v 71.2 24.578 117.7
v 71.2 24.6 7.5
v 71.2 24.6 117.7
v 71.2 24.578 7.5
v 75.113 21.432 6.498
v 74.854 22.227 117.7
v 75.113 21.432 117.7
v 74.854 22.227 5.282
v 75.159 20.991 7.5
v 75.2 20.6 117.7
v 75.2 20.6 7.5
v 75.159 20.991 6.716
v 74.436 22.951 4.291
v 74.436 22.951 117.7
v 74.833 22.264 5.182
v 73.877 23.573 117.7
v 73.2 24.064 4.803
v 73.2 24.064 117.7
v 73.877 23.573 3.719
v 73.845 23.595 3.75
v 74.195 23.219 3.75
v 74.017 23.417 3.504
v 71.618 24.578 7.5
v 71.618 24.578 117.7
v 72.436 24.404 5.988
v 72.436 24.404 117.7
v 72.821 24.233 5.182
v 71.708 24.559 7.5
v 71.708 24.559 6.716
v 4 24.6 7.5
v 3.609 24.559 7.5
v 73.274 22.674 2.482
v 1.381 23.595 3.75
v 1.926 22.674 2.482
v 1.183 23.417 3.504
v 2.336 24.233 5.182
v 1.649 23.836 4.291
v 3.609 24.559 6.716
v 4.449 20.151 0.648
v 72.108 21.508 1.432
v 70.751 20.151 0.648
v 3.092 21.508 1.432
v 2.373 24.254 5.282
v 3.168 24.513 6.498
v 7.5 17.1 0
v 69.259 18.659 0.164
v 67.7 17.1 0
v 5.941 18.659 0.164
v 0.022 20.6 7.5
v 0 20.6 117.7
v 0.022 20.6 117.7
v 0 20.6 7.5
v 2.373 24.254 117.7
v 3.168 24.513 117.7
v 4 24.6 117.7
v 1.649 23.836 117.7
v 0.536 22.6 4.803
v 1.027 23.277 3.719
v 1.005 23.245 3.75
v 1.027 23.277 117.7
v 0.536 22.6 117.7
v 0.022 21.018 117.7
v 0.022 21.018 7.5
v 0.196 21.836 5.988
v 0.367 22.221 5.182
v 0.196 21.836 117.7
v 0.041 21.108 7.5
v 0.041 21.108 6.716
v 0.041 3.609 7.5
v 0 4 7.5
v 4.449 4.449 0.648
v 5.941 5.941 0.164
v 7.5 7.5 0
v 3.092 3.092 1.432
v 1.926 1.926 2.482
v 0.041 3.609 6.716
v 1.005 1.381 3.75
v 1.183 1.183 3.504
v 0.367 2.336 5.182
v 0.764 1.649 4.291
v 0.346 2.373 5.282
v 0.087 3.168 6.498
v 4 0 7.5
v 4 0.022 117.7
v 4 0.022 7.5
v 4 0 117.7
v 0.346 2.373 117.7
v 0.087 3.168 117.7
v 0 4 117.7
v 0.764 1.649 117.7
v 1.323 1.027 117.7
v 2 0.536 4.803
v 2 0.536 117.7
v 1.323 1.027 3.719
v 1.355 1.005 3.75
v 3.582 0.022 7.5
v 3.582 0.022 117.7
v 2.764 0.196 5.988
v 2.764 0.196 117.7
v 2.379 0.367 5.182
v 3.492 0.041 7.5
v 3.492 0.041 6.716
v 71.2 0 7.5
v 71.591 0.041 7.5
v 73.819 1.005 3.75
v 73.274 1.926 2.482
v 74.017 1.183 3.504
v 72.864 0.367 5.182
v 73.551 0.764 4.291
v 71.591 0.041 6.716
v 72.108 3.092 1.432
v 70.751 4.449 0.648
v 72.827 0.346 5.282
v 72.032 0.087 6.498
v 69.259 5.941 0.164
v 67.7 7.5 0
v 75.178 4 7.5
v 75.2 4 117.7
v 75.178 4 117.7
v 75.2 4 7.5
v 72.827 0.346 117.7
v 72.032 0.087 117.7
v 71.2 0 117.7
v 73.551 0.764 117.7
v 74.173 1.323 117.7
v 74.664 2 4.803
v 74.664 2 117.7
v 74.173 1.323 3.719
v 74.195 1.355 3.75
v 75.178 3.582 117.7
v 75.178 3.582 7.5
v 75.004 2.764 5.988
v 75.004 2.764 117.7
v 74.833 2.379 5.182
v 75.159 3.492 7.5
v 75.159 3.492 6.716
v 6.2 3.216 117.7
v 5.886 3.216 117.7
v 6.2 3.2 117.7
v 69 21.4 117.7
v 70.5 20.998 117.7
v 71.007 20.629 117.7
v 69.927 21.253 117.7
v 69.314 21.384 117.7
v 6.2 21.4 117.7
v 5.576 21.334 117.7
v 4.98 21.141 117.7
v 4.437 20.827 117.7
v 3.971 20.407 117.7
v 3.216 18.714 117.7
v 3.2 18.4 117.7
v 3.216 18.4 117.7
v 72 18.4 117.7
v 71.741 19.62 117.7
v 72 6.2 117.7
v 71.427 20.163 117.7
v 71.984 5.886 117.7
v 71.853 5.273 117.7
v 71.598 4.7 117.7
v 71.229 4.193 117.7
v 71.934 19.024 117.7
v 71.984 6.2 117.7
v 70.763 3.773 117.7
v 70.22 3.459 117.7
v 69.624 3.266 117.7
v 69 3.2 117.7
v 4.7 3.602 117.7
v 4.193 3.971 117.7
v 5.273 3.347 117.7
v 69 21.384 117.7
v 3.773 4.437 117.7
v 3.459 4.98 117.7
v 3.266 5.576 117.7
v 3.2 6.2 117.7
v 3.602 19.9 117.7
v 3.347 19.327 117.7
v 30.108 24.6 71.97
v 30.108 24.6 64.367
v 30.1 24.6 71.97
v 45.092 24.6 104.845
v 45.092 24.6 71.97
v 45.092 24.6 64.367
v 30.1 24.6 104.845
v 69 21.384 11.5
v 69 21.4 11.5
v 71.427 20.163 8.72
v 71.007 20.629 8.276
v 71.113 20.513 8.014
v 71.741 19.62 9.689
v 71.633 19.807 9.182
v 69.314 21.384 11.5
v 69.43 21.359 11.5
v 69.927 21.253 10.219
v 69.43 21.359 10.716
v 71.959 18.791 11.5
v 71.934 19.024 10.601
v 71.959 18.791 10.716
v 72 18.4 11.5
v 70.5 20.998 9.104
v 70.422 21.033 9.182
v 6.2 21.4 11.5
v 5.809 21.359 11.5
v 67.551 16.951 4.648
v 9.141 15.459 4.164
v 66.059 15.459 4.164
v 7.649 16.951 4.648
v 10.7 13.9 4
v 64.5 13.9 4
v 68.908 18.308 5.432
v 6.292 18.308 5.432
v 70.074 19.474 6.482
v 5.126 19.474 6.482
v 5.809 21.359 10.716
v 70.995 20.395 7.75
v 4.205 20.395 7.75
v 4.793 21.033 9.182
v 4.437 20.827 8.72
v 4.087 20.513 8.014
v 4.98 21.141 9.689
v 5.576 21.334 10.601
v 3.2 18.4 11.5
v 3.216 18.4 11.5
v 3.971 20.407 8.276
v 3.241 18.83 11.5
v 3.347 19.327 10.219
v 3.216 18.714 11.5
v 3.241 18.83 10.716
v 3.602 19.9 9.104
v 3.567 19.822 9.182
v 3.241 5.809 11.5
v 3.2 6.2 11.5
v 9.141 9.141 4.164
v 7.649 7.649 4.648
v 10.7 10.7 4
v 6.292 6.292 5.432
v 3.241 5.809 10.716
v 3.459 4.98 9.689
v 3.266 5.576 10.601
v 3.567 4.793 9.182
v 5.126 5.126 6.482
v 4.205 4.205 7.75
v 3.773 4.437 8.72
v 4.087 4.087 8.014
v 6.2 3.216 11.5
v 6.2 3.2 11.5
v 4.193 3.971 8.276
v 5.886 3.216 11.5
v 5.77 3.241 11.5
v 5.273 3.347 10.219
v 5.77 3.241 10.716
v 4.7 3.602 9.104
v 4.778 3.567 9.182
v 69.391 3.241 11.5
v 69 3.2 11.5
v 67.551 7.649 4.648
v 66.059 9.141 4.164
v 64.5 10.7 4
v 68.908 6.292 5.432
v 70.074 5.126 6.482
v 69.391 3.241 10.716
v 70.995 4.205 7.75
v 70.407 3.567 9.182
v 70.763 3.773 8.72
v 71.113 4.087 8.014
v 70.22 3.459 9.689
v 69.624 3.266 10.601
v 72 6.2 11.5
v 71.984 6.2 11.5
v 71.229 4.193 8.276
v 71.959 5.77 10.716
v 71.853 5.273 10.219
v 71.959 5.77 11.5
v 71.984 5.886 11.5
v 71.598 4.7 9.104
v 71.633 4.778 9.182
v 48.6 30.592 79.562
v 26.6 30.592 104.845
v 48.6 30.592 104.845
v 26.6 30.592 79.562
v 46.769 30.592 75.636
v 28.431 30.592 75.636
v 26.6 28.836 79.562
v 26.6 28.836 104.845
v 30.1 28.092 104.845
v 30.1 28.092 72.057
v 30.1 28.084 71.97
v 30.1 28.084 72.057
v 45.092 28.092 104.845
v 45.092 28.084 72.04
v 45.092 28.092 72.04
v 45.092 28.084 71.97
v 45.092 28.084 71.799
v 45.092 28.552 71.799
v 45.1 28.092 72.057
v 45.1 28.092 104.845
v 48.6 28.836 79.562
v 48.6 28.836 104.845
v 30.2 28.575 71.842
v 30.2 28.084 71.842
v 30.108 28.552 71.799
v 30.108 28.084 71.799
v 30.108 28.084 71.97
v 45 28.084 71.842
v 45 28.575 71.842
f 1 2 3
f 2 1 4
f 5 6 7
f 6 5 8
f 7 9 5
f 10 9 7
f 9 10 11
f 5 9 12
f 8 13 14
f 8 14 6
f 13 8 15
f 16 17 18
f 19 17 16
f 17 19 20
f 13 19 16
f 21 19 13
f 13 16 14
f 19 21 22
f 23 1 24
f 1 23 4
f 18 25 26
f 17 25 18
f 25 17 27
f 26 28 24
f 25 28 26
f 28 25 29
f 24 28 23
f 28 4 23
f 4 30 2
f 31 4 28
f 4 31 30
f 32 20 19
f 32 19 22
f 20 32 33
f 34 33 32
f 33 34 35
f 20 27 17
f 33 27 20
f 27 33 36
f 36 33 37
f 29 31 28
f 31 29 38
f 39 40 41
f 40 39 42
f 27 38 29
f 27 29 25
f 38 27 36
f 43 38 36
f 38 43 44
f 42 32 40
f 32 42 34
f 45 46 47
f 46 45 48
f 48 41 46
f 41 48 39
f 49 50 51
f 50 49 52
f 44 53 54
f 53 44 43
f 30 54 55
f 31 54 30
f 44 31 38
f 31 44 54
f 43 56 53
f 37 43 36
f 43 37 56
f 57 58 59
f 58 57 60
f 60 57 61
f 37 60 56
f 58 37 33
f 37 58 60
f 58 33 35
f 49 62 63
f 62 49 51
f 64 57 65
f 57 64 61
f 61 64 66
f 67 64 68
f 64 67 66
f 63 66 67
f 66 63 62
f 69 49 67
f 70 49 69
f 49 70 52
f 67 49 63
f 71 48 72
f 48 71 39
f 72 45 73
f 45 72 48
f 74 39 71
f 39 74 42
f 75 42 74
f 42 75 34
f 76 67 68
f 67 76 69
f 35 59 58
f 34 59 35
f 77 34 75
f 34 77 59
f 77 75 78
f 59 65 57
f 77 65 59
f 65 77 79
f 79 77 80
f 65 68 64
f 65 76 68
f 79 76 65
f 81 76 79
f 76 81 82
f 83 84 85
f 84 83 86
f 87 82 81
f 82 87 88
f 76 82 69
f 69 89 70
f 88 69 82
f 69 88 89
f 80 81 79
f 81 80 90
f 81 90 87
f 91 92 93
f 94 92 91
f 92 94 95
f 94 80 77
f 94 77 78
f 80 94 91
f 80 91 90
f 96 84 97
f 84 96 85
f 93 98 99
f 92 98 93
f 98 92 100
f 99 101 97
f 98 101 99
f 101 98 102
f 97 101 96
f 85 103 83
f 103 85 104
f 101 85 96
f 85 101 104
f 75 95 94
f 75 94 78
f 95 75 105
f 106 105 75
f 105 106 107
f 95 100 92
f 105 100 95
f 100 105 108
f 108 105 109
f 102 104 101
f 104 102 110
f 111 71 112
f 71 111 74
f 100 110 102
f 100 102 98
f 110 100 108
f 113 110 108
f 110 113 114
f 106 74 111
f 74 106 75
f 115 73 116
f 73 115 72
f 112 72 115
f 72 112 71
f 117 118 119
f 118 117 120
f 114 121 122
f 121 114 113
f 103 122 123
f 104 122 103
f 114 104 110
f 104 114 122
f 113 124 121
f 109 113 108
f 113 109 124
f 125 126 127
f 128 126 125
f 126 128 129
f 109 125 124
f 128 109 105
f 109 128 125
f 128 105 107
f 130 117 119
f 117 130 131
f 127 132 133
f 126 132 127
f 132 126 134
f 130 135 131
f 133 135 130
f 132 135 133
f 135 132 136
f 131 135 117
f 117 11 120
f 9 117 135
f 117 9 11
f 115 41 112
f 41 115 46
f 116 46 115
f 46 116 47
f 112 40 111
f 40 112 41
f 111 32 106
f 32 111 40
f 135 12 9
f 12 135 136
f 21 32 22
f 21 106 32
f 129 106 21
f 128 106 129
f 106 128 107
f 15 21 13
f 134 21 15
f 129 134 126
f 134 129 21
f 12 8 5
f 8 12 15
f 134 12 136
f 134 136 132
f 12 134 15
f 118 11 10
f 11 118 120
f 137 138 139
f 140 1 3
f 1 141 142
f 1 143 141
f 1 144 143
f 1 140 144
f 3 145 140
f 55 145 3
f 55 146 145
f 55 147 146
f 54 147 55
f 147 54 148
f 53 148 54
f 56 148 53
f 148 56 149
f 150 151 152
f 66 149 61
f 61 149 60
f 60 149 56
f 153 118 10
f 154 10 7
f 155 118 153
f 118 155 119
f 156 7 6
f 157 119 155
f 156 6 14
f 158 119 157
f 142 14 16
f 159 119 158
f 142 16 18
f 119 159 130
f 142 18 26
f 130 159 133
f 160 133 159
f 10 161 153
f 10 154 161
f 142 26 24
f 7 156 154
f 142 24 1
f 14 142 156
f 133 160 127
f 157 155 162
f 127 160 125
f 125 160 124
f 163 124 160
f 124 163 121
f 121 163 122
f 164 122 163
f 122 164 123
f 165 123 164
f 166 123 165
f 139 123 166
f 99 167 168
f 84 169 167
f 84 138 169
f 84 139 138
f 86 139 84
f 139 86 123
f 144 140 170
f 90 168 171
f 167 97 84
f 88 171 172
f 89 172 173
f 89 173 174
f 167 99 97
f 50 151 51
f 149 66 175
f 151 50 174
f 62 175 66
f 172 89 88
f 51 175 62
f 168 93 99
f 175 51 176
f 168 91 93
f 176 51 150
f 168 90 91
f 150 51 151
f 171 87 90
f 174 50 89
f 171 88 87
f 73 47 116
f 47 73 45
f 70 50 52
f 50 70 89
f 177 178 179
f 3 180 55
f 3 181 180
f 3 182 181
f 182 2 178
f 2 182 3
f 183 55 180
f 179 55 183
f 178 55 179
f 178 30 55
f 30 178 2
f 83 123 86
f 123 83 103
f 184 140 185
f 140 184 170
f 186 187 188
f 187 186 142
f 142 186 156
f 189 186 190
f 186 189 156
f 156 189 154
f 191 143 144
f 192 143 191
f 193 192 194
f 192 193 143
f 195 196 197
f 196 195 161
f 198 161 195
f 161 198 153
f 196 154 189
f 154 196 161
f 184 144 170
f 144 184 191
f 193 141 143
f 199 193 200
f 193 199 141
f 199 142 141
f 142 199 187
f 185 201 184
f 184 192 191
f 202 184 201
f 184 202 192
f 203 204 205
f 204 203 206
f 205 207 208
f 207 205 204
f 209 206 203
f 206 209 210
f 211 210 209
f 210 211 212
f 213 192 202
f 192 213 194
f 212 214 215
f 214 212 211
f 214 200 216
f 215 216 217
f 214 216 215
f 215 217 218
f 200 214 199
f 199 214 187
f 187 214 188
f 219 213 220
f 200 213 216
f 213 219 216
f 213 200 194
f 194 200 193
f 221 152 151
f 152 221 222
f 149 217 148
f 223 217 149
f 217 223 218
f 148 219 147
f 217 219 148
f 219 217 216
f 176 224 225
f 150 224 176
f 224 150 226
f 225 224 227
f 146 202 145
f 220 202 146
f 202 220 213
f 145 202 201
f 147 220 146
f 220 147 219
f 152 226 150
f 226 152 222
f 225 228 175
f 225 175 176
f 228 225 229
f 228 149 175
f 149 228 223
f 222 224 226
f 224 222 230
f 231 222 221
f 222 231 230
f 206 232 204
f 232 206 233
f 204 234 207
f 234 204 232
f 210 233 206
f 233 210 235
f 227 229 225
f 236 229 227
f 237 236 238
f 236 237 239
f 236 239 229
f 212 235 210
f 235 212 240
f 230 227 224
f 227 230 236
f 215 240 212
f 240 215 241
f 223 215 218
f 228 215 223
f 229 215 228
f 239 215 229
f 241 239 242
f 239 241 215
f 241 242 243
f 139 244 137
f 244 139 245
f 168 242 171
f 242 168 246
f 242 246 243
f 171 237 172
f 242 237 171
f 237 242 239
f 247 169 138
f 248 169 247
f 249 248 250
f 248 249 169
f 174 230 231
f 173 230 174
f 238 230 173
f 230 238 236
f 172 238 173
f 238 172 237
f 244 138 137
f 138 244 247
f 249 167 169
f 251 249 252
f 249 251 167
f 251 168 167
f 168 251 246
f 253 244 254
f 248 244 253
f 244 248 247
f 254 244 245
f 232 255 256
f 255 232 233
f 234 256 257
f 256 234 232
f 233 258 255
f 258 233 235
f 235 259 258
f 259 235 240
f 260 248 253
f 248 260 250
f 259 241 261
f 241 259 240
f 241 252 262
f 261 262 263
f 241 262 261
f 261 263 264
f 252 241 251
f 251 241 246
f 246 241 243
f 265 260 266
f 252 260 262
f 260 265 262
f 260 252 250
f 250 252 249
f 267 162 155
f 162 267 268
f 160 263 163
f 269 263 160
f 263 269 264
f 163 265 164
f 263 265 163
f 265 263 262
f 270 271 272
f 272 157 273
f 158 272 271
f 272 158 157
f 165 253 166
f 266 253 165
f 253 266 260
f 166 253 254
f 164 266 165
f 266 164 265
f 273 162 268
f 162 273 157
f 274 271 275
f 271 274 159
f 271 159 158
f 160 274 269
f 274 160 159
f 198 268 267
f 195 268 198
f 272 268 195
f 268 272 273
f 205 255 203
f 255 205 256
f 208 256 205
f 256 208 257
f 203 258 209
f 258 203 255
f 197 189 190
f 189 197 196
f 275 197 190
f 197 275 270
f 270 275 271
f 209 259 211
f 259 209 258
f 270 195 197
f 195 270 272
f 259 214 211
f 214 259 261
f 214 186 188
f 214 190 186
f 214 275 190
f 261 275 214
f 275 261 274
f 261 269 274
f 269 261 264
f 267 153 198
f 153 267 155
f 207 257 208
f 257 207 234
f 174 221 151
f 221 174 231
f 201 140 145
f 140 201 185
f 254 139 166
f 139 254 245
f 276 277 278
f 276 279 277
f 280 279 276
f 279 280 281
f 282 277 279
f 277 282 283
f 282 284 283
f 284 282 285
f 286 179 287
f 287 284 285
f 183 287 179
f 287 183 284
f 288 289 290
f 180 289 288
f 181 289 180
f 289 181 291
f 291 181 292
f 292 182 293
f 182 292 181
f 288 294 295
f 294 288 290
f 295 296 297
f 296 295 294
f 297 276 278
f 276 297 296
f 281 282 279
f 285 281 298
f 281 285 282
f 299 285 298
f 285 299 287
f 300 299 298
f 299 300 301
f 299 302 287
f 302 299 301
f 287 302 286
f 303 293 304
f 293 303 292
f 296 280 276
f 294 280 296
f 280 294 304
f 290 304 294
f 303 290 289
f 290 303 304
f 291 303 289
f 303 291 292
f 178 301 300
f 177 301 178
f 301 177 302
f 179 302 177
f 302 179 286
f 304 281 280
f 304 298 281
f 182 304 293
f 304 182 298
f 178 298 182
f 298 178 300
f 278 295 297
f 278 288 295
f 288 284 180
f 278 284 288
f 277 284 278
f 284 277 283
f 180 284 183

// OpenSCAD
// file: libraries/local-misc/fillet.scad
module nut(d,h,horizontal=true){
    cornerdiameter =  (d / 2) / cos (180 / 6);
    cylinder(h = h, r = cornerdiameter, $fn = 6);
    if(horizontal){
        for(i = [1:6]){
            rotate([0,0,60*i]) translate([-cornerdiameter-0.2,0,0]) rotate([0,0,-45]) cube([2,2,h]);
        }
    }
}

module fillet(radius, height=100, $fn=$fn) {
  if (radius > 0) {
    //this creates acutal fillet
    translate([-radius, -radius, -height / 2 - 0.02]) difference() {
        cube([radius * 2, radius * 2, height + 0.04]);
        if ($fn == 0 && (radius == 2 || radius == 3 || radius == 4)) {
            cylinder(r=radius, h=height + 0.04, $fn=4 * radius);
        } else {
            cylinder(r=radius, h=height + 0.04, $fn=$fn);
        }

    }
  }
}

module cube_fillet(size, radius=-1, vertical=[0,0,0,0], top=[0,0,0,0], bottom=[0,0,0,0], center=false, $fn=4){
    if (center) {
        cube_fillet_inside(size, radius, vertical, top, bottom, $fn);
    } else {
        translate([size[0]/2, size[1]/2, size[2]/2])
            cube_fillet_inside(size, radius, vertical, top, bottom, $fn);
    }
}

module cube_negative_fillet(size, radius=-1, vertical=[3,3,3,3], top=[0,0,0,0], bottom=[0,0,0,0], $fn=$fn){
    j=[1,0,1,0];

    for (i=[0:3]) {
        if (radius > -1) {
            rotate([0, 0, 90*i]) translate([size[1-j[i]]/2, size[j[i]]/2, 0]) fillet(radius, size[2], $fn);
        } else {
            rotate([0, 0, 90*i]) translate([size[1-j[i]]/2, size[j[i]]/2, 0]) fillet(vertical[i], size[2], $fn);
        }
        rotate([90*i, -90, 0]) translate([size[2]/2, size[j[i]]/2, 0 ]) fillet(top[i], size[1-j[i]], $fn);
        rotate([90*(4-i), 90, 0]) translate([size[2]/2, size[j[i]]/2, 0]) fillet(bottom[i], size[1-j[i]], $fn);

    }
}

module cube_fillet_inside(size, radius=-1, vertical=[3,3,3,3], top=[0,0,0,0], bottom=[0,0,0,0], $fn=$fn){
    //makes CENTERED cube with round corners
    // if you give it radius, it will fillet vertical corners.
    //othervise use vertical, top, bottom arrays
    //when viewed from top, it starts in upper right corner (+x,+y quadrant) , goes counterclockwise
    //top/bottom fillet starts in direction of Y axis and goes CCW too

    if (radius == 0) {
        cube(size, center=true);
    } else {
        difference() {
            cube(size, center=true);
            cube_negative_fillet(size, radius, vertical, top, bottom, $fn);
        }
    }
}

//cube_fillet([10,10,10]);
// file: ../libraries/local-misc/fillet.scad
module nut(d,h,horizontal=true){
    cornerdiameter =  (d / 2) / cos (180 / 6);
    cylinder(h = h, r = cornerdiameter, $fn = 6);
    if(horizontal){
        for(i = [1:6]){
            rotate([0,0,60*i]) translate([-cornerdiameter-0.2,0,0]) rotate([0,0,-45]) cube([2,2,h]);
        }
    }
}

module fillet(radius, height=100, $fn=$fn) {
  if (radius > 0) {
    //this creates acutal fillet
    translate([-radius, -radius, -height / 2 - 0.02]) difference() {
        cube([radius * 2, radius * 2, height + 0.04]);
        if ($fn == 0 && (radius == 2 || radius == 3 || radius == 4)) {
            cylinder(r=radius, h=height + 0.04, $fn=4 * radius);
        } else {
            cylinder(r=radius, h=height + 0.04, $fn=$fn);
        }

    }
  }
}

module cube_fillet(size, radius=-1, vertical=[0,0,0,0], top=[0,0,0,0], bottom=[0,0,0,0], center=false, $fn=4){
    if (center) {
        cube_fillet_inside(size, radius, vertical, top, bottom, $fn);
    } else {
        translate([size[0]/2, size[1]/2, size[2]/2])
            cube_fillet_inside(size, radius, vertical, top, bottom, $fn);
    }
}

module cube_negative_fillet(size, radius=-1, vertical=[3,3,3,3], top=[0,0,0,0], bottom=[0,0,0,0], $fn=$fn){
    j=[1,0,1,0];

    for (i=[0:3]) {
        if (radius > -1) {
            rotate([0, 0, 90*i]) translate([size[1-j[i]]/2, size[j[i]]/2, 0]) fillet(radius, size[2], $fn);
        } else {
            rotate([0, 0, 90*i]) translate([size[1-j[i]]/2, size[j[i]]/2, 0]) fillet(vertical[i], size[2], $fn);
        }
        rotate([90*i, -90, 0]) translate([size[2]/2, size[j[i]]/2, 0 ]) fillet(top[i], size[1-j[i]], $fn);
        rotate([90*(4-i), 90, 0]) translate([size[2]/2, size[j[i]]/2, 0]) fillet(bottom[i], size[1-j[i]], $fn);

    }
}

module cube_fillet_inside(size, radius=-1, vertical=[3,3,3,3], top=[0,0,0,0], bottom=[0,0,0,0], $fn=$fn){
    //makes CENTERED cube with round corners
    // if you give it radius, it will fillet vertical corners.
    //othervise use vertical, top, bottom arrays
    //when viewed from top, it starts in upper right corner (+x,+y quadrant) , goes counterclockwise
    //top/bottom fillet starts in direction of Y axis and goes CCW too

    if (radius == 0) {
        cube(size, center=true);
    } else {
        difference() {
            cube(size, center=true);
            cube_negative_fillet(size, radius, vertical, top, bottom, $fn);
        }
    }
}

//cube_fillet([10,10,10]);
// file: ../libraries/MCAD/2Dshapes.scad
/*
 *  OpenSCAD 2D Shapes Library (www.openscad.org)
 *  Copyright (C) 2012 Peter Uithoven
 *
 *  License: LGPL 2.1 or later

 *  2D Shapes
 *  ngon(sides, radius, center=false);
 *  complexRoundSquare(size,rads1=[0,0], rads2=[0,0], rads3=[0,0], rads4=[0,0], center=true)
 *  roundedSquare(pos=[10,10],r=2)
 *  ellipsePart(width,height,numQuarters)
 *  donutSlice(innerSize,outerSize, start_angle, end_angle)
 *  pieSlice(size, start_angle, end_angle) //size in radius(es)
 *  ellipse(width, height) {
*/

// Examples - (layouts.scad is required for examples)
// example2DShapes(); use <layouts.scad>;

module example2DShapes() {
    grid(105,105,true,4)
    {
        // ellipse
        ellipse(50,75);

        // part of ellipse (a number of quarters)
        ellipsePart(50,75,3);
        ellipsePart(50,75,2);
        ellipsePart(50,75,1);

        // complexRoundSquare examples
        complexRoundSquare([75,100],[20,10],[20,10],[20,10],[20,10]);
        complexRoundSquare([75,100],[0,0],[0,0],[30,50],[20,10]);
        complexRoundSquare([50,50],[10,20],[10,20],[10,20],[10,20],false);
        complexRoundSquare([100,100]);
        complexRoundSquare([100,100],rads1=[20,20],rads3=[20,20]);

        // pie slice
        pieSlice(50,0,10);
        pieSlice(50,45,190);
        pieSlice([50,20],180,270);

        // donut slice
        donutSlice(20,50,0,350);
        donutSlice(30,50,190,270);
        donutSlice([40,22],[50,30],180,270);
        donutSlice([50,20],50,180,270);
        donutSlice([20,30],[50,40],0,270);
    }
}
// end examples ----------------------

module complexRoundSquare(
    size, // Size
    rads1=[0,0], // Top left radius
    rads2=[0,0], // Top right radius
    rads3=[0,0], // Bottom right radius
    rads4=[0,0], // Bottom left radius
    center=true // center
) {
    width = size[0];
    height = size[1];
    // %square(size=[width, height],center=true);
    x1 = 0-width/2+rads1[0];
    y1 = 0-height/2+rads1[1];
    x2 = width/2-rads2[0];
    y2 = 0-height/2+rads2[1];
    x3 = width/2-rads3[0];
    y3 = height/2-rads3[1];
    x4 = 0-width/2+rads4[0];
    y4 = height/2-rads4[1];

    scs = 0.1; // straight corner size

    x = (center)? 0: width/2;
    y = (center)? 0: height/2;

    translate([x,y,0])
    hull()
    {
        // top left
        if(rads1[0] > 0 && rads1[1] > 0)
            translate([x1,y1])
            mirror([1,0])
            ellipsePart(rads1[0]*2,rads1[1]*2,1);
        else
            translate([x1,y1])
            square(size=[scs, scs]);

        // top right
        if(rads2[0] > 0 && rads2[1] > 0)
            translate([x2,y2])
            ellipsePart(rads2[0]*2,rads2[1]*2,1);
        else
            translate([width/2-scs,0-height/2])
            square(size=[scs, scs]);

        // bottom right
        if(rads3[0] > 0 && rads3[1] > 0)
            translate([x3,y3])
            mirror([0,1])
            ellipsePart(rads3[0]*2,rads3[1]*2,1);
        else
            translate([width/2-scs,height/2-scs])
            square(size=[scs, scs]);

        // bottom left
        if(rads4[0] > 0 && rads4[1] > 0)
            translate([x4,y4])
            rotate([0,0,-180])
            ellipsePart(rads4[0]*2,rads4[1]*2,1);
        else
            #translate([x4,height/2-scs])
            square(size=[scs, scs]);
    }
}

module roundedSquare(pos=[10,10],r=2) {
    minkowski()
    {
        square([pos[0]-r*2,pos[1]-r*2],center=true);


        circle(r=r);
    }
}

// round shapes
// The orientation might change with the implementation of circle...
module ngon(sides, radius, center=false) {
    rotate([0, 0, 360/sides/2])
    circle(r=radius, $fn=sides, center=center);
}

module ellipsePart(width,height,numQuarters) {
    o = 1; //slight overlap to fix a bug
    difference()
    {
        ellipse(width,height);

        if(numQuarters <= 3)
            translate([0-width/2-o,0-height/2-o,0])
            square([width/2+o,height/2+o]);
        if(numQuarters <= 2)
            translate([0-width/2-o,-o,0])
            square([width/2+o,height/2+o*2]);
        if(numQuarters < 2)
            translate([-o,0,0])
            square([width/2+o*2,height/2+o]);
    }
}

module donutSlice(innerSize,outerSize, start_angle, end_angle) {
    difference()
    {
        pieSlice(outerSize, start_angle, end_angle);

        if(is_list(innerSize) && len(innerSize) > 1)
             ellipse(innerSize[0]*2,innerSize[1]*2);
        else
            circle(innerSize);
    }
}

module pieSlice(size, start_angle, end_angle) { //size in radius(es)
    rx = (is_list(size) && len(size) > 1)? size[0] : size;
    ry = (is_list(size) && len(size) > 1)? size[1] : size;
    trx = rx* sqrt(2) + 1;
    try = ry* sqrt(2) + 1;
    a0 = (4 * start_angle + 0 * end_angle) / 4;
    a1 = (3 * start_angle + 1 * end_angle) / 4;
    a2 = (2 * start_angle + 2 * end_angle) / 4;
    a3 = (1 * start_angle + 3 * end_angle) / 4;
    a4 = (0 * start_angle + 4 * end_angle) / 4;

    if(end_angle > start_angle)
        intersection() {
        if(is_list(size) && len(size) > 1)
            ellipse(rx*2,ry*2);
        else
            circle(rx);
        polygon([
            [0,0],
            [trx * cos(a0), try * sin(a0)],
            [trx * cos(a1), try * sin(a1)],
            [trx * cos(a2), try * sin(a2)],
            [trx * cos(a3), try * sin(a3)],
            [trx * cos(a4), try * sin(a4)],
            [0,0]
        ]);
    }
}

module ellipse(width, height) {
    scale([1, height/width, 1])
    circle(r=width/2);
}
// file: mockup/powerbank_dummy.scad
///////////////////////////////////////////////////////////////////////////////
// Initial Revision:
//   2023-Oct-14
//
// Author:
//
//   David Crook <idcrook@users.noreply.github.com>
//
// Inspired by:
//
// Description:
//
//
//
// Revisions/Notes:
//
//   2023-Oct-14: Initial dimensions
//
//
///////////////////////////////////////////////////////////////////////////////

// use_fillets = 1;

use <MCAD/2Dshapes.scad>
include <MCAD/units.scad>
include <../libraries/local-misc/fillet.scad>

e = 1/128; // small number

// determines whether model is instantiated by this file; set to false for
// using as an include file
DEVELOPING_powerbank_dummy = false;

// [Amazon.com: LOVELEDI Portable-Charger-Power-Bank - 2 Pack 15000mAh Dual USB Power Bank Output 5V3.1A Fast Charging Portable Charger Compatible with Smartphones and All USB Devices ](https://www.amazon.com/gp/product/B0B45GX5V7?ie=UTF8&th=1)

// - Capacity: 15000mAh
// - Input(Type-C): 5V/3A(max)
// - Input(Micro):  5V/2A
// - Output(USB-A1): 5V/3.1A
// - Output(USB-A2): 5V/3.1A
// - Size:  5.5 \* 2.5 \* 0.5 in
// - Weight: 203g / 7.1oz
// - Recharge Cycle: >800+times


powerbank__thickness = 17.0 * mm;
powerbank__length = 67.6 * mm;
powerbank__width = powerbank__length;
powerbank__height = 5.50 * inch;

// all measurements in millimeters
button__center_from_top = 15.0;
button__height = 11.0;
button__thickness = 7.0;
button__extension = 0.1;

led__midline_from_top = 15.0;
led__span = 11.0;
led__number_of = 4;
led__extension = 0.1;
led__radius = 0.5;
// usba_l__center_from_left = 10.0;

// band_thickness = 8.0;
face_corner_radius = 12.5;
side_corner_radius1 = 5.0;

/// creates for() range to give desired no of steps to cover range
function steps( start, no_steps, end) = [start:(end-start)/(no_steps-1):end];


module button (height = button__height,
               width = button__thickness,
               thickness = button__extension) {

    linear_extrude(height = thickness, center = false) {
      square(size = [width, height] , center = true);
    }
}



module powerbank_dummy(width = powerbank__width,
                       height = powerbank__height,
                       thickness = powerbank__thickness) {

  gross_size = [width, thickness, height];

  r = side_corner_radius1;
  face_r = face_corner_radius;

  vertical=[r,r,r,r];
  top=[face_r,face_r,face_r,face_r];
  bottom=[face_r,face_r,face_r,face_r];

  // TODO: Add ports/connectors locations?

  cube_fillet(size = gross_size,
    vertical=vertical, top=top, bottom=bottom,
    center = false, $fn = 30);

  // BUTTON
  btn_x = 0.0;
  btn_y = (1/2) * powerbank__thickness;
  btn_z = powerbank__height - button__center_from_top;

  translate([btn_x, btn_y, btn_z])
    rotate ([0,-90,0])
    color("LimeGreen")
    linear_extrude(height = button__extension, center=true)
    square([button__height, button__thickness], center = true);

  // LEDs
  led_x = (1/2) * powerbank__length - (1/2) * led__span;
  led_y = 0.0;
  led_z = powerbank__height - led__midline_from_top;

  color("Blue")
    translate([led_x, led_y, led_z])
    rotate([90, 0, 0])
    {
      for (i=steps(0.0, led__number_of, led__span)) {
        translate([i, 0, 0])
          linear_extrude(height = led__extension)
          square(led__radius);
      }
    }

}

// $preview requires version 2019.05
$fn = $preview ? 30 : 100;

if (DEVELOPING_powerbank_dummy && false) {
  // sizing up mount size
}

if (DEVELOPING_powerbank_dummy) {
  powerbank_dummy();
}
// main file
///////////////////////////////////////////////////////////////////////////////
// Initial Revision:
//   2023-Oct-14
//
// Author:
//
//   David Crook <idcrook@users.noreply.github.com>
//
// Inspired by: MY Iphone bike sleeve holders
//
// Description:
//
//
//
// Revisions/Notes:
//
//   2023-Oct-15: starting
//

//
///////////////////////////////////////////////////////////////////////////////

include <mockup/powerbank_dummy.scad>
use <../libraries/MCAD/2Dshapes.scad>
include <../libraries/local-misc/fillet.scad>

e = 1/128; // small number

// $preview requires version 2019.05
$fn = $preview ? 30 : 100;

RENDER_FOR_PRINT = true;
wall_thickness = 3.2;
wall_gap = 0.6;
base_thickness = 4.0;

module __Customizer_Limit__ () {}

// capture variables from included model
shell_thickness = powerbank__thickness ;
shell_width = powerbank__length;
shell_height = powerbank__height;

sleeve_top_cutoff = button__center_from_top + (1/2)*button__height + 5.5;

sleeve_outer_thicknees = shell_thickness + 2*wall_gap + 2*wall_thickness;
sleeve_outer_width = shell_width + 2*wall_gap + 2*wall_thickness;
sleeve_outer_height = shell_height + 1*base_thickness;

sides_radius = side_corner_radius1 - 1.0;
bottom_corder_radius = 0.60 * face_corner_radius;

module sleeveMountInsert (width, thickness, height, shouldTweak) {

  insertTailWidth = width;
  insertThickness = 2*thickness;
  insertChopThickness = thickness;
  insertFullHeight = height;

  insertPartialHeight = 25.0 ;
  insertSlantedHeight = insertFullHeight - insertPartialHeight;
  insertSlantAngle = 62;
  insertSlantAngle2 = 65;

  tolerance = 0.5;

  insertChopThickness_x = shouldTweak ? insertChopThickness + tolerance : insertChopThickness;
  insertChopThickness_y = shouldTweak ? insertChopThickness + tolerance : insertChopThickness;
  r1 = shouldTweak ? 0 : 0;
  // empirically determined value when shouldTweak == false
  start_of_leading_edge = (1/2) * insertSlantedHeight * sin (insertSlantAngle);
  z_cover_leading_edge = start_of_leading_edge + 0.12 ;
  y_rot2_leading_edge = - 180 + insertSlantAngle2;

  rotateAngle = 12;

  echo("insertChopThickness_x:", insertChopThickness_x);
  echo("insertChopThickness_y:", insertChopThickness_y);

  difference() {
    linear_extrude(height = insertFullHeight, center = false, convexity = 10)
      difference() {
      complexRoundSquare([insertTailWidth, insertThickness],
                         [0,0], [0,0], [0,0], [0,0],
                         center = false);

      // vertical side nearest attach surface
      translate([-e, -e, 0])
        complexRoundSquare([insertChopThickness_x + e, insertChopThickness_y + e],
                           [0,0], [0,0], [r1,r1], [0,0],
                           center = false);

      // other vertical side nearest attach surface
      translate([insertTailWidth - insertChopThickness_x - e, -e, 0])
        complexRoundSquare([insertChopThickness_x + e, insertChopThickness_y + e],
                           [0,0], [0,0], [0,0], [r1,r1],
                           center = false);

      // this carves a small slant on the side rails
      if (shouldTweak) {
        translate([insertChopThickness_x, insertChopThickness_y, 0])
          rotate([0,0,180-rotateAngle])
          complexRoundSquare([insertChopThickness_x+2, insertChopThickness_y/2],
                             [0,0], [0,0], [0,0], [0,0],
                             center = false);
        translate([insertTailWidth - insertChopThickness_x, 0, 0])
          translate([0, insertChopThickness_y,0])
          rotate([0,0,270+rotateAngle])
          complexRoundSquare([insertChopThickness_x/2, insertChopThickness_y+2],
                             [0,0], [0,0], [0,0], [0,0],
                             center = false);
      }
    }
    // leading edges of upper wings of slot
    translate([insertChopThickness_x + 0*e + 0.1,
               insertChopThickness_y - 1*e ,
               start_of_leading_edge - 1*e - 0.0])
      rotate([0, y_rot2_leading_edge, 0])
      cube(10 + 2);
    translate([insertTailWidth - insertChopThickness_x - 0*e - 0.1,
               insertChopThickness_y - 1*e ,
               start_of_leading_edge - 1*e - 0.0])
      rotate([0, 90 - insertSlantAngle2 ,0])
      cube(10 + 2);
    translate([-e, -e, 0])
      mirror([0,0,0])
      rotate([0,0,0])
      cube([insertChopThickness_x + 2*e,insertChopThickness_y+2, z_cover_leading_edge]);
    translate([insertTailWidth + e, -e , 0])
      mirror([1,0,0])
      rotate([0,0,0])
      cube([insertChopThickness_x + 2*e,insertChopThickness_y+2, z_cover_leading_edge]);

    // carve leading edge main slope/angle
    translate([-1*e, -1*e, -1*e])
      rotate([-(90-insertSlantAngle),0,0])
      cube([insertTailWidth+2*e, insertFullHeight/2+2*e, insertFullHeight/2+2*e]);
  }
}

module test_sleeveMountInsert (fit_better, translate_x) {
  mountInsertWidth = 22;
  mountInsertThickness = 3;
  mountInsertHeight = 42;

  fitBetter = fit_better;

  tolerance = 0.5;
  wantThinner = true ;
  sleeveBottomThickness =  wantThinner ? 2.8 : 3.5;


  mountInsert_yTranslation = (1/2)*(tolerance + h) + sleeveBottomThickness;

  translate([translate_x, 0, 0])
    sleeveMountInsert(mountInsertWidth, mountInsertThickness, mountInsertHeight, fitBetter);
}

module sleeve(width = sleeve_outer_width,
              height = sleeve_outer_height,
              thickness = sleeve_outer_thicknees) {

  sleeve_height = height - sleeve_top_cutoff;
  outer_size = [width, thickness, sleeve_height];

  cutout_size = [ width - 2*wall_thickness,
                  thickness - 2*wall_thickness,
                  height - base_thickness + 1*e];

  r = sides_radius;
  corner_r = bottom_corder_radius;
  vertical=[r,r,r,r];
  top=[0,0,0,0];
  bottom=[corner_r,corner_r,corner_r,corner_r];

  difference() {
    cube_fillet(size = outer_size, radius = r,
                vertical=vertical, top=top, bottom=bottom,
                center = false, $fn = 30);

    translate([wall_thickness, wall_thickness, base_thickness])
    cube_fillet(size = cutout_size,  radius = r - 1,
                vertical=vertical, top=top, bottom=bottom,
                center = false, $fn = 30);
  }

  // sleeve mount - add mounting wedge
  mountInsertWidth = 22;
  mountInsertThickness = 3;
  mountInsertHeight = 42;

  // y dimension needs to overlap with sleeve
  mountInsert_yTranslation = thickness-e;

  // y dimension needs to overlap with sleeve
  translate([-mountInsertWidth/2 + (1/2)*width, mountInsert_yTranslation, (0.85) * (sleeve_height - mountInsertHeight)])
    difference() {
    sleeveMountInsert(mountInsertWidth, mountInsertThickness, mountInsertHeight, true);

    translate([-e, -e, mountInsertHeight - 1.5])
      cube([mountInsertWidth + 2*e, mountInsertThickness*2 + 2*e, 6]);
  }

}


if (RENDER_FOR_PRINT) {
  sleeve();
 } else {
  wall_pad = wall_gap + wall_thickness;
  %translate([wall_pad,,wall_pad,base_thickness])
    powerbank_dummy();
  sleeve();
 }
